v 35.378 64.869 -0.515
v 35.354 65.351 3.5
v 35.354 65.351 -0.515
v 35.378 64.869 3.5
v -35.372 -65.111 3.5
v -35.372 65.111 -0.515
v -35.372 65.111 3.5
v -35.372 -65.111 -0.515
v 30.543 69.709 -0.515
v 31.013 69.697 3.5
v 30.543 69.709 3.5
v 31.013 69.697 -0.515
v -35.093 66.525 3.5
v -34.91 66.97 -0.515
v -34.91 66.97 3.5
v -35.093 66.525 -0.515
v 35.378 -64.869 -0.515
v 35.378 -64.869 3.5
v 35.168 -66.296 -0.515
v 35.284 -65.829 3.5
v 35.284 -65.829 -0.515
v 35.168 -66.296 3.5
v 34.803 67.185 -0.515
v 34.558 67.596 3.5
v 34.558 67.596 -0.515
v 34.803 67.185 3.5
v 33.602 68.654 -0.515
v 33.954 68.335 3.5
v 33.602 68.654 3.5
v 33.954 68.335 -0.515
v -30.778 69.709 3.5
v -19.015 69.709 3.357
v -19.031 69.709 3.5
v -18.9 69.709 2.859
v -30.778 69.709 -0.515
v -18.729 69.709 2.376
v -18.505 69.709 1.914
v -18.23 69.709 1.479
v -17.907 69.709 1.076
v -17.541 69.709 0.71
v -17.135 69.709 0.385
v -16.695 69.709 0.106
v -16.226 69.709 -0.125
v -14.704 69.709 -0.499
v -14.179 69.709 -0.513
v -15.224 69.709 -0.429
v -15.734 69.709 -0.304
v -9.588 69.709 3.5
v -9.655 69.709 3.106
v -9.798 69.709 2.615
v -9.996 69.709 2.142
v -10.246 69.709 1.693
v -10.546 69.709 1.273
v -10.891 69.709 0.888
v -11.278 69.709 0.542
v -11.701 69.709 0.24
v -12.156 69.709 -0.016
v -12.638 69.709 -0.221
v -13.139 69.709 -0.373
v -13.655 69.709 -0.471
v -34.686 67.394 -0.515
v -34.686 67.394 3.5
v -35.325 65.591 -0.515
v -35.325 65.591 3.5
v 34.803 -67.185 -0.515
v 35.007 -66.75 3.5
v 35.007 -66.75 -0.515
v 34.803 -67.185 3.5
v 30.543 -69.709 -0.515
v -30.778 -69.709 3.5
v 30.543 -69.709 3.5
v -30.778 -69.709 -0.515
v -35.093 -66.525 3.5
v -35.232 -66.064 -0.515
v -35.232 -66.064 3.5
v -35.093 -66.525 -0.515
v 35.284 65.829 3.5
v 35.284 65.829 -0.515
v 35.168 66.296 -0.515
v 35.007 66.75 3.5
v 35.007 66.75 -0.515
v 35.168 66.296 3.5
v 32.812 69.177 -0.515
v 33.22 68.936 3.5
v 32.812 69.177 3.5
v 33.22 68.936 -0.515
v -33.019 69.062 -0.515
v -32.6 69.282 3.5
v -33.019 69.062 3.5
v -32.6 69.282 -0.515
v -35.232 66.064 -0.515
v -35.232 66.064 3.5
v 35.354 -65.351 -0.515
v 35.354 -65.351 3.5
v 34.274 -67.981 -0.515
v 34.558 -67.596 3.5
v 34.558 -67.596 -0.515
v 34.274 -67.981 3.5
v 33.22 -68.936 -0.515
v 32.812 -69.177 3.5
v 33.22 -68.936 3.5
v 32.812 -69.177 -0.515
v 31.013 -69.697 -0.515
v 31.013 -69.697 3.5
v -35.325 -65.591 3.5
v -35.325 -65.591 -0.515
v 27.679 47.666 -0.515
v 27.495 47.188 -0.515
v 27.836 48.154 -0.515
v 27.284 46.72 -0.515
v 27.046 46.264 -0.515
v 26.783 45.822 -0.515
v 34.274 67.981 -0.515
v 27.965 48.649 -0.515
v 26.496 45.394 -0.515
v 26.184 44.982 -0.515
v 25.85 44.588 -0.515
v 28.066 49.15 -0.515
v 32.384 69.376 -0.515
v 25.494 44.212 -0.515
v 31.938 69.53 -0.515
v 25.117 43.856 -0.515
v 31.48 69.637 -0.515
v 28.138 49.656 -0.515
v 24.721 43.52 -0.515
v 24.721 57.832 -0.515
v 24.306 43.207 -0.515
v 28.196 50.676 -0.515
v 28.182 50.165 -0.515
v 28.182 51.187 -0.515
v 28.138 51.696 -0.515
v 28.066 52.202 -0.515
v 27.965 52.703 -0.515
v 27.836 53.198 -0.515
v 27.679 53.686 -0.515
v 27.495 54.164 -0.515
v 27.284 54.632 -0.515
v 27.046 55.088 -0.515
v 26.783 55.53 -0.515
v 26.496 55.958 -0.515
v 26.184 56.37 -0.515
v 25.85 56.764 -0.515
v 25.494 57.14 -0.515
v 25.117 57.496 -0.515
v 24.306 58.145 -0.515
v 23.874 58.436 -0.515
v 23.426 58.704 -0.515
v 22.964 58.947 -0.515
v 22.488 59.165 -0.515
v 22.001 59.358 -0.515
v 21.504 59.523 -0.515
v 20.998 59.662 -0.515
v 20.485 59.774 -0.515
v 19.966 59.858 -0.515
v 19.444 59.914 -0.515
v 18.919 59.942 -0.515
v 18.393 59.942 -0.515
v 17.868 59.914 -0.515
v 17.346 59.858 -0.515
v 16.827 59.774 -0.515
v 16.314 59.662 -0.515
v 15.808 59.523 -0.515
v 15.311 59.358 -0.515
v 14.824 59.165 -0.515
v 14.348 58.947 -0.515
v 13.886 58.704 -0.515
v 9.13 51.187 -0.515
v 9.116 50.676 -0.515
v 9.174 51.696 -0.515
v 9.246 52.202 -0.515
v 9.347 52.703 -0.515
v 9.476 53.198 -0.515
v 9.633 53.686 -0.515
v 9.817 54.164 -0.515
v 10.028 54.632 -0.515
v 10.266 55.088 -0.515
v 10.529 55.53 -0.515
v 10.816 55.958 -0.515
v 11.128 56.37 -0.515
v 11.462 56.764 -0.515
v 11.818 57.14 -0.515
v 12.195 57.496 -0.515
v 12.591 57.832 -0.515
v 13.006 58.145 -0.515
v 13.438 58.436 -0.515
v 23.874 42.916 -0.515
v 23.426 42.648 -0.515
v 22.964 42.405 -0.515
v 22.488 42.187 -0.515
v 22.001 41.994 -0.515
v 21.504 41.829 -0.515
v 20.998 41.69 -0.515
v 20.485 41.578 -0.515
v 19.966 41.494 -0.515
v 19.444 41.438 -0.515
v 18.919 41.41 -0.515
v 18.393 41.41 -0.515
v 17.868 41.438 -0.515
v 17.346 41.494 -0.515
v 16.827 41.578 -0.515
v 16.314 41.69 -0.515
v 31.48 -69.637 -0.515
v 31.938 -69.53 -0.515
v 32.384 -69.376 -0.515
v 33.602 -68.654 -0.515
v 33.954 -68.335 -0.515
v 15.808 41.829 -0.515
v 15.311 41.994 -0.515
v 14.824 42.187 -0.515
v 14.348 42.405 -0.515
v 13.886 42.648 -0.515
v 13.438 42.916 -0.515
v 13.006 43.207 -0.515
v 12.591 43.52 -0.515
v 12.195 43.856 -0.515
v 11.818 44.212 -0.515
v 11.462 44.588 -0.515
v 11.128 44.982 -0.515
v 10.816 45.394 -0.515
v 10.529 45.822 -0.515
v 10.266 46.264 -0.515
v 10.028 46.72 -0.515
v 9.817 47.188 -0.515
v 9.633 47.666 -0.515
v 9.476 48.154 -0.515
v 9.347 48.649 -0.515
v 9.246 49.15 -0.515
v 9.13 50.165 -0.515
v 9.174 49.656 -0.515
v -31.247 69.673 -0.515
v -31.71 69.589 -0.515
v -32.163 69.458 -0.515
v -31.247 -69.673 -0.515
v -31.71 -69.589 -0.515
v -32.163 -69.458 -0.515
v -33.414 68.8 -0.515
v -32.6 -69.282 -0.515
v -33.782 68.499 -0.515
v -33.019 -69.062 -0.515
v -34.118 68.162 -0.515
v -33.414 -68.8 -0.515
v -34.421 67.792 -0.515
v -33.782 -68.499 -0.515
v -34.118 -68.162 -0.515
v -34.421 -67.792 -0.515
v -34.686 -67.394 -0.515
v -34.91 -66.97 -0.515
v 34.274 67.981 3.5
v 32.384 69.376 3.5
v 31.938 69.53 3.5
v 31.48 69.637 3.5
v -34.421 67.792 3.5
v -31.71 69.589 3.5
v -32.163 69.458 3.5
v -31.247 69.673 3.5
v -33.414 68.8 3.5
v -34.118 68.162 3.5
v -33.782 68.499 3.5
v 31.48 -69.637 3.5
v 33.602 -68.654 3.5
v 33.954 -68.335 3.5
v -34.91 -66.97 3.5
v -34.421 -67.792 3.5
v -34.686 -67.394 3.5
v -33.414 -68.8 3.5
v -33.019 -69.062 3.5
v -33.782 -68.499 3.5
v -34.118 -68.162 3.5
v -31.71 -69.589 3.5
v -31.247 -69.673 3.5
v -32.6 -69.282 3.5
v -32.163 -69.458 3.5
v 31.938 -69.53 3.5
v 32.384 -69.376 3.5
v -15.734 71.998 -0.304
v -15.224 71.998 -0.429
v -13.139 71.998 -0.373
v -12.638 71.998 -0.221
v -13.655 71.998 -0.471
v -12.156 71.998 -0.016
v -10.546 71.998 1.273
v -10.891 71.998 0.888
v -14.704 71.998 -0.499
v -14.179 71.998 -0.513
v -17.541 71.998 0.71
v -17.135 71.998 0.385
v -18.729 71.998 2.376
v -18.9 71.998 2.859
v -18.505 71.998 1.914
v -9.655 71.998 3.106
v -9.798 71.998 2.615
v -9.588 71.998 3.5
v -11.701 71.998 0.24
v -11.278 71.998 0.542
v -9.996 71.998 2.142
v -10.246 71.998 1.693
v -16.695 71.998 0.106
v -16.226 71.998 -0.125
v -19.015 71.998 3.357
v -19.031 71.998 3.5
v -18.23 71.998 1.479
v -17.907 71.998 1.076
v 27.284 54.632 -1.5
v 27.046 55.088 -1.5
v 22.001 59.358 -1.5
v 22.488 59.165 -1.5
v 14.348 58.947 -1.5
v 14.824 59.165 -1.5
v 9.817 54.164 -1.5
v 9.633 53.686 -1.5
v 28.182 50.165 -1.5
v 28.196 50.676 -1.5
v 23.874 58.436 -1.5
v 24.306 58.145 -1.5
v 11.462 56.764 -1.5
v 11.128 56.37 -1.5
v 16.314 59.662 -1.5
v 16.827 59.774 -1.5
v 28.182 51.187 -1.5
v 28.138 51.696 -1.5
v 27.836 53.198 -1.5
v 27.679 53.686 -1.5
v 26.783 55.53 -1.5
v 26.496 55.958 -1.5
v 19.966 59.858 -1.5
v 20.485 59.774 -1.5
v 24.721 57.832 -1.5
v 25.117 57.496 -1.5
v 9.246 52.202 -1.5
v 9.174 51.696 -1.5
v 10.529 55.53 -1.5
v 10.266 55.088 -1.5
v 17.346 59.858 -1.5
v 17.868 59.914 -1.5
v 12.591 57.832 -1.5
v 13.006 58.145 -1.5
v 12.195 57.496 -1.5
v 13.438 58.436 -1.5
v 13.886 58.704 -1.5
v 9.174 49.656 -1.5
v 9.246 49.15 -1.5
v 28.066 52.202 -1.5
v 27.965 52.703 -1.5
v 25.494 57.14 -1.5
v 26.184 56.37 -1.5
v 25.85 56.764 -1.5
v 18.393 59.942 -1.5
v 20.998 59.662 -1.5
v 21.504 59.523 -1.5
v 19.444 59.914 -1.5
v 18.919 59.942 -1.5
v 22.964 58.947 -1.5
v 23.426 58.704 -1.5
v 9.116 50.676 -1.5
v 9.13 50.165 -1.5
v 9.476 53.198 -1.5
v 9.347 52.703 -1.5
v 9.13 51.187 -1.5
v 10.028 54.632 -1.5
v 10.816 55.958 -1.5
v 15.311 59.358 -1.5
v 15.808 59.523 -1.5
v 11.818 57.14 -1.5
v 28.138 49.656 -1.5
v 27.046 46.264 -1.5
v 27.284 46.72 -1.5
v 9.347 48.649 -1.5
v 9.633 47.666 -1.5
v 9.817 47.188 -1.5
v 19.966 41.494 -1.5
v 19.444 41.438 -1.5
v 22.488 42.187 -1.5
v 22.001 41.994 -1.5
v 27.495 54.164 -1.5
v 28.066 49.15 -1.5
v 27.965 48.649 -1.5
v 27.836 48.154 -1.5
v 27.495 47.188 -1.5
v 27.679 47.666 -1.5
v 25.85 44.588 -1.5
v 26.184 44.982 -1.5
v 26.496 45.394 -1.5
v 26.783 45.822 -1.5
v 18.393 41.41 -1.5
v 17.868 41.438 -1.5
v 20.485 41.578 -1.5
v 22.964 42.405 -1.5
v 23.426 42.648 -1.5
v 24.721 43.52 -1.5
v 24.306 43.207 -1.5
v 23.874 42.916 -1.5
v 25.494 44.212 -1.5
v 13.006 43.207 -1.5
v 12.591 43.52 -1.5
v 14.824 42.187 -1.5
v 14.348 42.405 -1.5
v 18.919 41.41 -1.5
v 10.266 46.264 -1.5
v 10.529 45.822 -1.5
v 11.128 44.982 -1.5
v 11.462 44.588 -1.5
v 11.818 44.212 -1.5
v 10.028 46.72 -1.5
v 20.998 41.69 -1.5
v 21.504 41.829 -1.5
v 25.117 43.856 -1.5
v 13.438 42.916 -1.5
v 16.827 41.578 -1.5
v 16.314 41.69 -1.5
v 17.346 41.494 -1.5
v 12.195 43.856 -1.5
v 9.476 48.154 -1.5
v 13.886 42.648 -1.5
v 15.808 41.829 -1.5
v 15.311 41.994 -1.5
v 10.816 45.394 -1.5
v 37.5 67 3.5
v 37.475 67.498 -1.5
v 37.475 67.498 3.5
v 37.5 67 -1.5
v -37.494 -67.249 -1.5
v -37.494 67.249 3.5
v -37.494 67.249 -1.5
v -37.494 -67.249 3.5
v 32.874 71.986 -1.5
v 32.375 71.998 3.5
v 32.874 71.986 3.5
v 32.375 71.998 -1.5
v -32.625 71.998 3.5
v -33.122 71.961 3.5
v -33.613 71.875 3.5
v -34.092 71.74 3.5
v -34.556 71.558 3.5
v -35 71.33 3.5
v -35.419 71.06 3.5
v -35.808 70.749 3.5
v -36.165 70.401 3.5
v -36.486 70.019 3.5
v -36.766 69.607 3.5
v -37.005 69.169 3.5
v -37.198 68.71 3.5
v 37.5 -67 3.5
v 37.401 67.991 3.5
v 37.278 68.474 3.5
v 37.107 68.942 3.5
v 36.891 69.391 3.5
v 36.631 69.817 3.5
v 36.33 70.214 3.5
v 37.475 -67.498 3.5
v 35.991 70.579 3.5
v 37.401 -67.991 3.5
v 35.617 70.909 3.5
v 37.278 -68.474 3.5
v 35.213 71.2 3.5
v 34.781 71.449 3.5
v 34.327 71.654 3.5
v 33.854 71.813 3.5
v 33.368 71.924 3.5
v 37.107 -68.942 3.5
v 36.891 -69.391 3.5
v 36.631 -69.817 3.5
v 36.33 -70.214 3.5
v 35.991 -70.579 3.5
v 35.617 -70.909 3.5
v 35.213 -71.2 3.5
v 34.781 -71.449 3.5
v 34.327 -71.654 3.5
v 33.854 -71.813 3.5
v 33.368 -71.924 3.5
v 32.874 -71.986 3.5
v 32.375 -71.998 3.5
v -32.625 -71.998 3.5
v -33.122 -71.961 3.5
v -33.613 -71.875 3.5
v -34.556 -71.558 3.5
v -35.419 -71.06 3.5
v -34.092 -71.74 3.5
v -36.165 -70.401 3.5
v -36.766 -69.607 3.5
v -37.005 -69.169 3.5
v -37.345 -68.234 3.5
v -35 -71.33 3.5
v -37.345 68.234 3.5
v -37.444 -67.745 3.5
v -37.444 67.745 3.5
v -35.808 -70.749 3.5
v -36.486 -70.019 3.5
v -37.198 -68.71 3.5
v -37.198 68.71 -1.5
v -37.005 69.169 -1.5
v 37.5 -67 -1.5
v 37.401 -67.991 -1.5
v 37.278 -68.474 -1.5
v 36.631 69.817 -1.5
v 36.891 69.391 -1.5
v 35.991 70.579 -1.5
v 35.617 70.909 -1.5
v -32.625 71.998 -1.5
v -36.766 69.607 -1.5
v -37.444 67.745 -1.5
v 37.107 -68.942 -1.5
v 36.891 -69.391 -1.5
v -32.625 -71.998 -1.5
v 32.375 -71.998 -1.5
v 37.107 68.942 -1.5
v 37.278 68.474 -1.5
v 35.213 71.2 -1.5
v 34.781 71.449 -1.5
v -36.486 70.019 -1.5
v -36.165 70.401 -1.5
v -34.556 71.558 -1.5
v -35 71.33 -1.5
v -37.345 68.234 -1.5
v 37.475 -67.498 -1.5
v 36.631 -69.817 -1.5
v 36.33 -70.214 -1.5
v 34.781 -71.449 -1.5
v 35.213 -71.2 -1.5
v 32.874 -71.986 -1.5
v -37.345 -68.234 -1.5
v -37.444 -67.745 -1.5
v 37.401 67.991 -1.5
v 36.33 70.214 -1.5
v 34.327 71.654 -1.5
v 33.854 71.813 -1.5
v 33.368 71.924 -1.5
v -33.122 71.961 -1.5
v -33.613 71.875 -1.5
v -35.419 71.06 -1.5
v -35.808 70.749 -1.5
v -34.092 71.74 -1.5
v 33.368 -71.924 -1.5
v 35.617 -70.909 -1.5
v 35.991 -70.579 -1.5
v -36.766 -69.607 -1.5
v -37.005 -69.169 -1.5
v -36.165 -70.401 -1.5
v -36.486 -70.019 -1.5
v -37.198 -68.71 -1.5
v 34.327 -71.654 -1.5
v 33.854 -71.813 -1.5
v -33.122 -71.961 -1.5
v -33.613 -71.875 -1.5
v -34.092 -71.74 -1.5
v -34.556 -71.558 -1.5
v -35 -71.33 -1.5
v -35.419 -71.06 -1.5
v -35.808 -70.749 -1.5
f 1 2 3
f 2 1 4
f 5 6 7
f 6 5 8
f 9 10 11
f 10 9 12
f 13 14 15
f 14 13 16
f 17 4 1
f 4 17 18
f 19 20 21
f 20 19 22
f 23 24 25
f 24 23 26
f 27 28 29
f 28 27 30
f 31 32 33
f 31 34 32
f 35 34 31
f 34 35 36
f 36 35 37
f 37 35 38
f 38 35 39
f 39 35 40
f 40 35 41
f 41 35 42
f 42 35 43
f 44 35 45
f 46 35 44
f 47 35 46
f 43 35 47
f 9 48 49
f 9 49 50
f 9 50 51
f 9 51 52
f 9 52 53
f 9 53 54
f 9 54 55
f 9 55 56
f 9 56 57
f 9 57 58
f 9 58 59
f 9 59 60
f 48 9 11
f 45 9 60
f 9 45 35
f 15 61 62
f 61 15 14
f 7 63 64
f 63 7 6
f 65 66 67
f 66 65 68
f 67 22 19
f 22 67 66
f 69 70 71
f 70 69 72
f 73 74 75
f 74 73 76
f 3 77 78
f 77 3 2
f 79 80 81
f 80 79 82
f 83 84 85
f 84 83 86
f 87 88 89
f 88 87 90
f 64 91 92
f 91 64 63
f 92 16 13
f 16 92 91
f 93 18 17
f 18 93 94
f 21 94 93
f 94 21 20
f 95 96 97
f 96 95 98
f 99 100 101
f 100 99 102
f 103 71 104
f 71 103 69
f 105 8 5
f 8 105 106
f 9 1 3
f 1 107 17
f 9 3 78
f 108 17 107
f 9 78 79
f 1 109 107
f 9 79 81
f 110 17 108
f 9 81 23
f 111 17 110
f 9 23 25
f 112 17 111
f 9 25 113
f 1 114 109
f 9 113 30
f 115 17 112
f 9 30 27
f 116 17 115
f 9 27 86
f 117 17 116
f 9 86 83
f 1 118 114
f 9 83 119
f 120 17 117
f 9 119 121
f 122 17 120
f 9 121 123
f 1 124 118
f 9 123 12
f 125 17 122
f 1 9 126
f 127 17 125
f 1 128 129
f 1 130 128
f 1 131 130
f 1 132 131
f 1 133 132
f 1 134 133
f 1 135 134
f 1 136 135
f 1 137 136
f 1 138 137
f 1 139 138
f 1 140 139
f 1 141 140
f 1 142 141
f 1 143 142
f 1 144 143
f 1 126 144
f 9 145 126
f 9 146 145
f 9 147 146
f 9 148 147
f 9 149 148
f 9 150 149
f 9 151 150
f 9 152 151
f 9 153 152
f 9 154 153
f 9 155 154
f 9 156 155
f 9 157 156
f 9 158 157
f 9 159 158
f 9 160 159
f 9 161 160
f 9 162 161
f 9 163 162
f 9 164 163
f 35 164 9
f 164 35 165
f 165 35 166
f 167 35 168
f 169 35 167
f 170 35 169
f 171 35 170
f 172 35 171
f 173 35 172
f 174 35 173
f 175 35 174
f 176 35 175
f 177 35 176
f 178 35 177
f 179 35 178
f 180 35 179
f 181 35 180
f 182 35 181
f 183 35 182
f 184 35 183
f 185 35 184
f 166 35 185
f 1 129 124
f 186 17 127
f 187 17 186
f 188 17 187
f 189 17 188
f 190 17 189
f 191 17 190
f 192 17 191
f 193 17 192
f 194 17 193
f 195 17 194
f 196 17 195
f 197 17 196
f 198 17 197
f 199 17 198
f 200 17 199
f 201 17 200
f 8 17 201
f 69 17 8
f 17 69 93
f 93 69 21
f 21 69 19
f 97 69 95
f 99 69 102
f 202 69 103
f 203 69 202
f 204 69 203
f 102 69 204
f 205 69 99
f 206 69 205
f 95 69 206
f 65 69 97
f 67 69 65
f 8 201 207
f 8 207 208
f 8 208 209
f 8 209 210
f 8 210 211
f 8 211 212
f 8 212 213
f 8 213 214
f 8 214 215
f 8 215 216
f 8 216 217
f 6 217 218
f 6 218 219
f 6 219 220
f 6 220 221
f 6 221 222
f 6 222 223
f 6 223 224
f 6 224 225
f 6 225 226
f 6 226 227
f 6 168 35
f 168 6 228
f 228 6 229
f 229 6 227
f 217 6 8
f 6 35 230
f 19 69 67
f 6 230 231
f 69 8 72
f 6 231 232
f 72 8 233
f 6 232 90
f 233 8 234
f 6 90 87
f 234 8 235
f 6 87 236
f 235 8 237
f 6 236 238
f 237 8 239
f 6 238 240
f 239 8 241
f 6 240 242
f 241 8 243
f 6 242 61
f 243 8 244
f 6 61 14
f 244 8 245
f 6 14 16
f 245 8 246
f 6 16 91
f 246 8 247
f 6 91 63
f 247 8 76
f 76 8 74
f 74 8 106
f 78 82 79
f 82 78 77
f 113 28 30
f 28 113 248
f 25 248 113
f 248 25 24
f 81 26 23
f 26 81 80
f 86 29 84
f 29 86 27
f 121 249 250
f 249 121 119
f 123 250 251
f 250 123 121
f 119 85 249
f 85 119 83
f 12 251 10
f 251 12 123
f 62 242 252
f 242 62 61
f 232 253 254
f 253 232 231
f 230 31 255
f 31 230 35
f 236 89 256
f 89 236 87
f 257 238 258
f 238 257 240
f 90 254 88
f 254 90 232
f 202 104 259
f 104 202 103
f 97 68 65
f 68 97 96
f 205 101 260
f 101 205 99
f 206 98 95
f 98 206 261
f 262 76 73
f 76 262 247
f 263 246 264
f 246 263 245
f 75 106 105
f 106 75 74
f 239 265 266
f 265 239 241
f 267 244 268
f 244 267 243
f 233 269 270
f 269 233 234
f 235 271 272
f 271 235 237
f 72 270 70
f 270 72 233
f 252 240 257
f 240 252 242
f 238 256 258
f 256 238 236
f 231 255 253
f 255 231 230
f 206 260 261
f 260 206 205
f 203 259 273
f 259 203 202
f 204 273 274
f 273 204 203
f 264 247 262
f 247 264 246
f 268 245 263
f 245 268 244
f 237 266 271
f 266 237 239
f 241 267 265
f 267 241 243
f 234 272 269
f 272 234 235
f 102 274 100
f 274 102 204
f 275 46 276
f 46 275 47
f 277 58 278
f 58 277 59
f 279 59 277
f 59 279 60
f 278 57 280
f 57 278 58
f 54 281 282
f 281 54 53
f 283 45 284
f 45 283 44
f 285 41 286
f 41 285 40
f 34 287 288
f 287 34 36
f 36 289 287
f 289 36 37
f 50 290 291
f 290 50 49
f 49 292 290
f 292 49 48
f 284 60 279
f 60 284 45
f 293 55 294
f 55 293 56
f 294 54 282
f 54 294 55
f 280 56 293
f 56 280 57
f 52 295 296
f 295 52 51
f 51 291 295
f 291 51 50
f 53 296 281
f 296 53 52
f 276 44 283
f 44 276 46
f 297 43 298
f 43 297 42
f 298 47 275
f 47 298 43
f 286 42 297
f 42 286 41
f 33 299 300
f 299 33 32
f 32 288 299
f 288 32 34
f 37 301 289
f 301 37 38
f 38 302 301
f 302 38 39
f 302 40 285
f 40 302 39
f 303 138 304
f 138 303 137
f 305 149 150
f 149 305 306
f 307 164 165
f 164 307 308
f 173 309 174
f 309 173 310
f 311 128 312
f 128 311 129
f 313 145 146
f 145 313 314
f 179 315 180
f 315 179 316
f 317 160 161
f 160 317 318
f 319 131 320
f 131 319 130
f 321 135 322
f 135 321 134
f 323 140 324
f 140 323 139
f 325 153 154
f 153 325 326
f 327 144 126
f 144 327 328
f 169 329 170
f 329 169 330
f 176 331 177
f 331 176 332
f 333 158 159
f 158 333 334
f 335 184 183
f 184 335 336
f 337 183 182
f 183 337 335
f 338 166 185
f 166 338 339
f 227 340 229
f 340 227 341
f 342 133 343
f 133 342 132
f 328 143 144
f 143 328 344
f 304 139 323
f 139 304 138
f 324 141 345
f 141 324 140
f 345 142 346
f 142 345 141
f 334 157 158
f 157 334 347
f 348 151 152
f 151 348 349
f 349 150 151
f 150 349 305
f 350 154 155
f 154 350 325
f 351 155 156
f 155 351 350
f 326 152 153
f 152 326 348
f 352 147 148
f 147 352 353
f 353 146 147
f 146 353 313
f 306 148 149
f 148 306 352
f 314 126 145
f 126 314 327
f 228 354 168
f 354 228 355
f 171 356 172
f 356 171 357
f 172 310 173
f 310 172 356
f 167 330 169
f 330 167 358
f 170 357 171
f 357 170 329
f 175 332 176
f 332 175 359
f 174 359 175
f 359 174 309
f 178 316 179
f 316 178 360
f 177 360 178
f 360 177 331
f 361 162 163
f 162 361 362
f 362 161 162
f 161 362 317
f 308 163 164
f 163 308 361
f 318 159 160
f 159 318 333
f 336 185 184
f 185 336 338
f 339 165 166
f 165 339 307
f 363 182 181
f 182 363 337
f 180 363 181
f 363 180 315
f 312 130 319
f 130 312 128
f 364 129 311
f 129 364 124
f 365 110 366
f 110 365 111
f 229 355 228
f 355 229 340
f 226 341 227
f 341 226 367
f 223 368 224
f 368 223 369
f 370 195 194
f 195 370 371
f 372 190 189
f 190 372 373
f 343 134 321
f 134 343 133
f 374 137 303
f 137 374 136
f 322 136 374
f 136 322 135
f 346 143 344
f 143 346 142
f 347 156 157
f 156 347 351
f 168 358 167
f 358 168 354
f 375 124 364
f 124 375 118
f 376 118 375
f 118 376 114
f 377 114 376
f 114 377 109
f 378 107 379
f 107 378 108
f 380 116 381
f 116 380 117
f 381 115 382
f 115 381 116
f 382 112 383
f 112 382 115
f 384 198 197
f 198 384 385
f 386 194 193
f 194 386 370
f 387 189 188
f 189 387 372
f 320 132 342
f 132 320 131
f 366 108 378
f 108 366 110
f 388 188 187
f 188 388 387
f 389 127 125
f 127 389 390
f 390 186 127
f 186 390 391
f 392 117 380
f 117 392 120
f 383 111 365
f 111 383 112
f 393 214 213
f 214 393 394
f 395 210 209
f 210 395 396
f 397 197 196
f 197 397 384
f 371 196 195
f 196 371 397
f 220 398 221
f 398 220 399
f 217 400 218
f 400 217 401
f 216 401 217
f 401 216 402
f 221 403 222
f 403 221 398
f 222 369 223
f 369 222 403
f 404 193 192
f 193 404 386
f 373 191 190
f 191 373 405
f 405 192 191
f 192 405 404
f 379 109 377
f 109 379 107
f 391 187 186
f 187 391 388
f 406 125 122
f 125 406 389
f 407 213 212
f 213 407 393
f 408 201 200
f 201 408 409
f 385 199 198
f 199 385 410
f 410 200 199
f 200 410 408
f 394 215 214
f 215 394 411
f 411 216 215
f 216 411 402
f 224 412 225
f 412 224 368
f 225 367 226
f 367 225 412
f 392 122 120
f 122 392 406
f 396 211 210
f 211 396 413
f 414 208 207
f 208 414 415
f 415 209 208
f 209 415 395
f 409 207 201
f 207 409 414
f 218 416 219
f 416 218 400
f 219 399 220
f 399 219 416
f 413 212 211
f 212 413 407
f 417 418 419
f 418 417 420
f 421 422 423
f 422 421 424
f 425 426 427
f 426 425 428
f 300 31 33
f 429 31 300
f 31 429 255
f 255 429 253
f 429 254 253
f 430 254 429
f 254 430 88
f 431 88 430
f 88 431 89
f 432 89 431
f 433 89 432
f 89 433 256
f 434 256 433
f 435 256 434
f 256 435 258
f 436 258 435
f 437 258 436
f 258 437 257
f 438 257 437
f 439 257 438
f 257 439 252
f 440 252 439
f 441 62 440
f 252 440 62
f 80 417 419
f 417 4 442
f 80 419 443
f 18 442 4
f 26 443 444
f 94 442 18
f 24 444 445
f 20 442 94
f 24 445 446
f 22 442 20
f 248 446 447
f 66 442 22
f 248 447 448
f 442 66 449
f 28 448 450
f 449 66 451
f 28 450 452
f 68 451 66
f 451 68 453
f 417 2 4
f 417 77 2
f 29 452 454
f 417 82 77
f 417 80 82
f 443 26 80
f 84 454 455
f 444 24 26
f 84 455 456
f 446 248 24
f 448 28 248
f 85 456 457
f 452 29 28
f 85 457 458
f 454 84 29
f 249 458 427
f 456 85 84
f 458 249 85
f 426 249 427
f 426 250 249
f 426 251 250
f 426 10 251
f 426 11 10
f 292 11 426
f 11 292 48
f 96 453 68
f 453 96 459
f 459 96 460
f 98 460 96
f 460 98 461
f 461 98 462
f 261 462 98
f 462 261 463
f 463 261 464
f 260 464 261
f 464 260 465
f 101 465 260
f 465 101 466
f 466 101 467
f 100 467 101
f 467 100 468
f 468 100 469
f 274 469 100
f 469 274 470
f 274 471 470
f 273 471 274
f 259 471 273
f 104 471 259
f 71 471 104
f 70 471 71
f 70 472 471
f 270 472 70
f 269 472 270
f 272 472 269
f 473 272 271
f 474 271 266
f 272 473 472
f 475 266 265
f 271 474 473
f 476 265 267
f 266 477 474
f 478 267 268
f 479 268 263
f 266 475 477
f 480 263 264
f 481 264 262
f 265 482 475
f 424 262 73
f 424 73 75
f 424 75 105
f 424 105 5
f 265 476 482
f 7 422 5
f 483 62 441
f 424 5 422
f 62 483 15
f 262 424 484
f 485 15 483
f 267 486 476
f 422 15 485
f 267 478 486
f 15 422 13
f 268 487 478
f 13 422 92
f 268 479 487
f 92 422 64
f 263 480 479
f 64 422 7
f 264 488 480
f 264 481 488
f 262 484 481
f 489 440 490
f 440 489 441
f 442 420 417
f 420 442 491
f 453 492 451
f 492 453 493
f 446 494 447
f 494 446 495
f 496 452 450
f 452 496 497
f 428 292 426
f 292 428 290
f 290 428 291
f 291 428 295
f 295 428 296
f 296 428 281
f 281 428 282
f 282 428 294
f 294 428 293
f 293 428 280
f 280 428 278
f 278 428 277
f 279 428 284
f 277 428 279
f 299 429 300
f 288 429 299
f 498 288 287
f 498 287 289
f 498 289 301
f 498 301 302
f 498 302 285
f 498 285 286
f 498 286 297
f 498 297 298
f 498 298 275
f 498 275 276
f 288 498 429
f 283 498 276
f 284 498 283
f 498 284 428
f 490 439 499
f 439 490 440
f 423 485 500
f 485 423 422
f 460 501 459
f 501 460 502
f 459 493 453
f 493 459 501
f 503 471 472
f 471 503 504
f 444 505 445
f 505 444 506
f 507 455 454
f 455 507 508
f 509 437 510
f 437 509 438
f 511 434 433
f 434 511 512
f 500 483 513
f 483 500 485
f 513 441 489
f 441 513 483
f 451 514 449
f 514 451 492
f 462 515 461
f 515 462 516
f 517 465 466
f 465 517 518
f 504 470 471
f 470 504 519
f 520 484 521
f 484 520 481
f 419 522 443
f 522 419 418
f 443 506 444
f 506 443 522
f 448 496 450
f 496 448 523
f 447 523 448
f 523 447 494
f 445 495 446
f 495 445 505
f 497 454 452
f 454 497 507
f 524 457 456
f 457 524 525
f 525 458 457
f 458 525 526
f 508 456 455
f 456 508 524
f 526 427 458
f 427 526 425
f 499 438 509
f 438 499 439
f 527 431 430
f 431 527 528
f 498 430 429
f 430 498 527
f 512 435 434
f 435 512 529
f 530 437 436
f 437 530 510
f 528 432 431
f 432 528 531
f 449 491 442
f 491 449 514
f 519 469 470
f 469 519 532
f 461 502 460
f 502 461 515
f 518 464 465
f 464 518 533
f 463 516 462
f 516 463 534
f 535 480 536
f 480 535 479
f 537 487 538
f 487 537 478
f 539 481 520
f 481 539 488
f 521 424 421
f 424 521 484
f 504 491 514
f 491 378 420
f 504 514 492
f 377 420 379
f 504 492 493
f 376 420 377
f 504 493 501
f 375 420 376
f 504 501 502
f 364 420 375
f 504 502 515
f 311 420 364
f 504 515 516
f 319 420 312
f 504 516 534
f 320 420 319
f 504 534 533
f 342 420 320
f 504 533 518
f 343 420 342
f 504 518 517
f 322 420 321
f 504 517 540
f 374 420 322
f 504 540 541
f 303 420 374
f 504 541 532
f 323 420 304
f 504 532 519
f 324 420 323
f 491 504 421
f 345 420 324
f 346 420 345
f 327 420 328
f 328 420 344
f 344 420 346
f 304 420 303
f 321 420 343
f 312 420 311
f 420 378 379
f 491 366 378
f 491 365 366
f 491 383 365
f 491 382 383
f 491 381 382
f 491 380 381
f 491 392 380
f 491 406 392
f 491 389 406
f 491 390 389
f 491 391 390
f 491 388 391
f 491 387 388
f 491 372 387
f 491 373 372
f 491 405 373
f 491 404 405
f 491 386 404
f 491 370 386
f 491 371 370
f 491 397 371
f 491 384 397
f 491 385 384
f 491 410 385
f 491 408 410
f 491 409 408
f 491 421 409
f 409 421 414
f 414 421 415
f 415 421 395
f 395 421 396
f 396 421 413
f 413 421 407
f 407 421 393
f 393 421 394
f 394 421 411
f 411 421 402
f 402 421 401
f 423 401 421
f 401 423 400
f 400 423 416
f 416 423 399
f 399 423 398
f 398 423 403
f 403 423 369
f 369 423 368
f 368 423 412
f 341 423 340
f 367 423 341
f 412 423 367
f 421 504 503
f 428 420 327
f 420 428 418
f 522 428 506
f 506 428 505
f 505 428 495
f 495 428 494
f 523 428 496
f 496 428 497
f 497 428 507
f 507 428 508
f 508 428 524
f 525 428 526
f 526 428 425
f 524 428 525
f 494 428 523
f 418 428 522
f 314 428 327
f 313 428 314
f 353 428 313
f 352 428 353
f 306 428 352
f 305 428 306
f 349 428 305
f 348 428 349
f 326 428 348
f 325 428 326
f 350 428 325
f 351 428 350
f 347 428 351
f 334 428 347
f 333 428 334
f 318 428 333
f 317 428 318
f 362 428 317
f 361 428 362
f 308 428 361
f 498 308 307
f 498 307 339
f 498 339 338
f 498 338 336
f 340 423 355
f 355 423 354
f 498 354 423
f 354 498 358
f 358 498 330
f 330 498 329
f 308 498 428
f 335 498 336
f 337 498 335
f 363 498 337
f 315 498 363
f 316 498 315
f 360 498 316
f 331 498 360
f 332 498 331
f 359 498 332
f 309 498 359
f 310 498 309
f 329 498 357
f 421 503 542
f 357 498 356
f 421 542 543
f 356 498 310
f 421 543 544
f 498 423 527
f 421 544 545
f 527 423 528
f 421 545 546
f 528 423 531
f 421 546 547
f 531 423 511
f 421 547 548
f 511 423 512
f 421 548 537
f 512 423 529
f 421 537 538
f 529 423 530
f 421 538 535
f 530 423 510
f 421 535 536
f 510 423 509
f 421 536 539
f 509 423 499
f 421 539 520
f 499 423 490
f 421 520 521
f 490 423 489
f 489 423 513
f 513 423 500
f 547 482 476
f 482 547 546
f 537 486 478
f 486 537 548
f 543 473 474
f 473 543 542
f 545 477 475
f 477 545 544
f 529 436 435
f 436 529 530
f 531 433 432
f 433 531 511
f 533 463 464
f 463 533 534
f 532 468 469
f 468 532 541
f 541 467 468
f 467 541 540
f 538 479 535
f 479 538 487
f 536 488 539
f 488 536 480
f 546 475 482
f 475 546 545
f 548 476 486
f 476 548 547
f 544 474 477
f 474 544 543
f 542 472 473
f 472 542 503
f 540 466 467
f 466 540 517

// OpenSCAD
// file: config.scad
comp_height = 10;
backplate_height = 4;
thin_layer_height = .5;

module box(h)
{
    hull() for (i=[-1,1]) for (j=[-1,1]) translate([j*(6+69-10)/2,i*(6+138-10)/2,0]) cylinder(d=10, h=h, center=true);
}

module grove(h=60)
{
    hull() {
        cylinder(d=3.5, h=h, center=true);
        translate([0,10,0]) cylinder(d=3.5, h=h, center=true);
    }
}
// main file
$fa=0.5; // default minimum facet angle is now 0.5
$fs=0.5; // default minimum facet size is now 0.5 mm

include <config.scad>

// % translate([0,0,-1.5]) import("inc/nexus_5.stl", convexity=3);
difference() {
    translate([0,0,1]) box(h=5);
    scale([1.06,1.03,1.03]) {
        translate([0,0,2.5]) scale([.89,.94,2]) box(h=3);
        translate([-13.5,65,4]) rotate([90,0,0]) cylinder(d=9, h=15, center=true);
        translate([17.6,49.2,0]) cylinder(d=18, h=4, center=true);
    }
}
